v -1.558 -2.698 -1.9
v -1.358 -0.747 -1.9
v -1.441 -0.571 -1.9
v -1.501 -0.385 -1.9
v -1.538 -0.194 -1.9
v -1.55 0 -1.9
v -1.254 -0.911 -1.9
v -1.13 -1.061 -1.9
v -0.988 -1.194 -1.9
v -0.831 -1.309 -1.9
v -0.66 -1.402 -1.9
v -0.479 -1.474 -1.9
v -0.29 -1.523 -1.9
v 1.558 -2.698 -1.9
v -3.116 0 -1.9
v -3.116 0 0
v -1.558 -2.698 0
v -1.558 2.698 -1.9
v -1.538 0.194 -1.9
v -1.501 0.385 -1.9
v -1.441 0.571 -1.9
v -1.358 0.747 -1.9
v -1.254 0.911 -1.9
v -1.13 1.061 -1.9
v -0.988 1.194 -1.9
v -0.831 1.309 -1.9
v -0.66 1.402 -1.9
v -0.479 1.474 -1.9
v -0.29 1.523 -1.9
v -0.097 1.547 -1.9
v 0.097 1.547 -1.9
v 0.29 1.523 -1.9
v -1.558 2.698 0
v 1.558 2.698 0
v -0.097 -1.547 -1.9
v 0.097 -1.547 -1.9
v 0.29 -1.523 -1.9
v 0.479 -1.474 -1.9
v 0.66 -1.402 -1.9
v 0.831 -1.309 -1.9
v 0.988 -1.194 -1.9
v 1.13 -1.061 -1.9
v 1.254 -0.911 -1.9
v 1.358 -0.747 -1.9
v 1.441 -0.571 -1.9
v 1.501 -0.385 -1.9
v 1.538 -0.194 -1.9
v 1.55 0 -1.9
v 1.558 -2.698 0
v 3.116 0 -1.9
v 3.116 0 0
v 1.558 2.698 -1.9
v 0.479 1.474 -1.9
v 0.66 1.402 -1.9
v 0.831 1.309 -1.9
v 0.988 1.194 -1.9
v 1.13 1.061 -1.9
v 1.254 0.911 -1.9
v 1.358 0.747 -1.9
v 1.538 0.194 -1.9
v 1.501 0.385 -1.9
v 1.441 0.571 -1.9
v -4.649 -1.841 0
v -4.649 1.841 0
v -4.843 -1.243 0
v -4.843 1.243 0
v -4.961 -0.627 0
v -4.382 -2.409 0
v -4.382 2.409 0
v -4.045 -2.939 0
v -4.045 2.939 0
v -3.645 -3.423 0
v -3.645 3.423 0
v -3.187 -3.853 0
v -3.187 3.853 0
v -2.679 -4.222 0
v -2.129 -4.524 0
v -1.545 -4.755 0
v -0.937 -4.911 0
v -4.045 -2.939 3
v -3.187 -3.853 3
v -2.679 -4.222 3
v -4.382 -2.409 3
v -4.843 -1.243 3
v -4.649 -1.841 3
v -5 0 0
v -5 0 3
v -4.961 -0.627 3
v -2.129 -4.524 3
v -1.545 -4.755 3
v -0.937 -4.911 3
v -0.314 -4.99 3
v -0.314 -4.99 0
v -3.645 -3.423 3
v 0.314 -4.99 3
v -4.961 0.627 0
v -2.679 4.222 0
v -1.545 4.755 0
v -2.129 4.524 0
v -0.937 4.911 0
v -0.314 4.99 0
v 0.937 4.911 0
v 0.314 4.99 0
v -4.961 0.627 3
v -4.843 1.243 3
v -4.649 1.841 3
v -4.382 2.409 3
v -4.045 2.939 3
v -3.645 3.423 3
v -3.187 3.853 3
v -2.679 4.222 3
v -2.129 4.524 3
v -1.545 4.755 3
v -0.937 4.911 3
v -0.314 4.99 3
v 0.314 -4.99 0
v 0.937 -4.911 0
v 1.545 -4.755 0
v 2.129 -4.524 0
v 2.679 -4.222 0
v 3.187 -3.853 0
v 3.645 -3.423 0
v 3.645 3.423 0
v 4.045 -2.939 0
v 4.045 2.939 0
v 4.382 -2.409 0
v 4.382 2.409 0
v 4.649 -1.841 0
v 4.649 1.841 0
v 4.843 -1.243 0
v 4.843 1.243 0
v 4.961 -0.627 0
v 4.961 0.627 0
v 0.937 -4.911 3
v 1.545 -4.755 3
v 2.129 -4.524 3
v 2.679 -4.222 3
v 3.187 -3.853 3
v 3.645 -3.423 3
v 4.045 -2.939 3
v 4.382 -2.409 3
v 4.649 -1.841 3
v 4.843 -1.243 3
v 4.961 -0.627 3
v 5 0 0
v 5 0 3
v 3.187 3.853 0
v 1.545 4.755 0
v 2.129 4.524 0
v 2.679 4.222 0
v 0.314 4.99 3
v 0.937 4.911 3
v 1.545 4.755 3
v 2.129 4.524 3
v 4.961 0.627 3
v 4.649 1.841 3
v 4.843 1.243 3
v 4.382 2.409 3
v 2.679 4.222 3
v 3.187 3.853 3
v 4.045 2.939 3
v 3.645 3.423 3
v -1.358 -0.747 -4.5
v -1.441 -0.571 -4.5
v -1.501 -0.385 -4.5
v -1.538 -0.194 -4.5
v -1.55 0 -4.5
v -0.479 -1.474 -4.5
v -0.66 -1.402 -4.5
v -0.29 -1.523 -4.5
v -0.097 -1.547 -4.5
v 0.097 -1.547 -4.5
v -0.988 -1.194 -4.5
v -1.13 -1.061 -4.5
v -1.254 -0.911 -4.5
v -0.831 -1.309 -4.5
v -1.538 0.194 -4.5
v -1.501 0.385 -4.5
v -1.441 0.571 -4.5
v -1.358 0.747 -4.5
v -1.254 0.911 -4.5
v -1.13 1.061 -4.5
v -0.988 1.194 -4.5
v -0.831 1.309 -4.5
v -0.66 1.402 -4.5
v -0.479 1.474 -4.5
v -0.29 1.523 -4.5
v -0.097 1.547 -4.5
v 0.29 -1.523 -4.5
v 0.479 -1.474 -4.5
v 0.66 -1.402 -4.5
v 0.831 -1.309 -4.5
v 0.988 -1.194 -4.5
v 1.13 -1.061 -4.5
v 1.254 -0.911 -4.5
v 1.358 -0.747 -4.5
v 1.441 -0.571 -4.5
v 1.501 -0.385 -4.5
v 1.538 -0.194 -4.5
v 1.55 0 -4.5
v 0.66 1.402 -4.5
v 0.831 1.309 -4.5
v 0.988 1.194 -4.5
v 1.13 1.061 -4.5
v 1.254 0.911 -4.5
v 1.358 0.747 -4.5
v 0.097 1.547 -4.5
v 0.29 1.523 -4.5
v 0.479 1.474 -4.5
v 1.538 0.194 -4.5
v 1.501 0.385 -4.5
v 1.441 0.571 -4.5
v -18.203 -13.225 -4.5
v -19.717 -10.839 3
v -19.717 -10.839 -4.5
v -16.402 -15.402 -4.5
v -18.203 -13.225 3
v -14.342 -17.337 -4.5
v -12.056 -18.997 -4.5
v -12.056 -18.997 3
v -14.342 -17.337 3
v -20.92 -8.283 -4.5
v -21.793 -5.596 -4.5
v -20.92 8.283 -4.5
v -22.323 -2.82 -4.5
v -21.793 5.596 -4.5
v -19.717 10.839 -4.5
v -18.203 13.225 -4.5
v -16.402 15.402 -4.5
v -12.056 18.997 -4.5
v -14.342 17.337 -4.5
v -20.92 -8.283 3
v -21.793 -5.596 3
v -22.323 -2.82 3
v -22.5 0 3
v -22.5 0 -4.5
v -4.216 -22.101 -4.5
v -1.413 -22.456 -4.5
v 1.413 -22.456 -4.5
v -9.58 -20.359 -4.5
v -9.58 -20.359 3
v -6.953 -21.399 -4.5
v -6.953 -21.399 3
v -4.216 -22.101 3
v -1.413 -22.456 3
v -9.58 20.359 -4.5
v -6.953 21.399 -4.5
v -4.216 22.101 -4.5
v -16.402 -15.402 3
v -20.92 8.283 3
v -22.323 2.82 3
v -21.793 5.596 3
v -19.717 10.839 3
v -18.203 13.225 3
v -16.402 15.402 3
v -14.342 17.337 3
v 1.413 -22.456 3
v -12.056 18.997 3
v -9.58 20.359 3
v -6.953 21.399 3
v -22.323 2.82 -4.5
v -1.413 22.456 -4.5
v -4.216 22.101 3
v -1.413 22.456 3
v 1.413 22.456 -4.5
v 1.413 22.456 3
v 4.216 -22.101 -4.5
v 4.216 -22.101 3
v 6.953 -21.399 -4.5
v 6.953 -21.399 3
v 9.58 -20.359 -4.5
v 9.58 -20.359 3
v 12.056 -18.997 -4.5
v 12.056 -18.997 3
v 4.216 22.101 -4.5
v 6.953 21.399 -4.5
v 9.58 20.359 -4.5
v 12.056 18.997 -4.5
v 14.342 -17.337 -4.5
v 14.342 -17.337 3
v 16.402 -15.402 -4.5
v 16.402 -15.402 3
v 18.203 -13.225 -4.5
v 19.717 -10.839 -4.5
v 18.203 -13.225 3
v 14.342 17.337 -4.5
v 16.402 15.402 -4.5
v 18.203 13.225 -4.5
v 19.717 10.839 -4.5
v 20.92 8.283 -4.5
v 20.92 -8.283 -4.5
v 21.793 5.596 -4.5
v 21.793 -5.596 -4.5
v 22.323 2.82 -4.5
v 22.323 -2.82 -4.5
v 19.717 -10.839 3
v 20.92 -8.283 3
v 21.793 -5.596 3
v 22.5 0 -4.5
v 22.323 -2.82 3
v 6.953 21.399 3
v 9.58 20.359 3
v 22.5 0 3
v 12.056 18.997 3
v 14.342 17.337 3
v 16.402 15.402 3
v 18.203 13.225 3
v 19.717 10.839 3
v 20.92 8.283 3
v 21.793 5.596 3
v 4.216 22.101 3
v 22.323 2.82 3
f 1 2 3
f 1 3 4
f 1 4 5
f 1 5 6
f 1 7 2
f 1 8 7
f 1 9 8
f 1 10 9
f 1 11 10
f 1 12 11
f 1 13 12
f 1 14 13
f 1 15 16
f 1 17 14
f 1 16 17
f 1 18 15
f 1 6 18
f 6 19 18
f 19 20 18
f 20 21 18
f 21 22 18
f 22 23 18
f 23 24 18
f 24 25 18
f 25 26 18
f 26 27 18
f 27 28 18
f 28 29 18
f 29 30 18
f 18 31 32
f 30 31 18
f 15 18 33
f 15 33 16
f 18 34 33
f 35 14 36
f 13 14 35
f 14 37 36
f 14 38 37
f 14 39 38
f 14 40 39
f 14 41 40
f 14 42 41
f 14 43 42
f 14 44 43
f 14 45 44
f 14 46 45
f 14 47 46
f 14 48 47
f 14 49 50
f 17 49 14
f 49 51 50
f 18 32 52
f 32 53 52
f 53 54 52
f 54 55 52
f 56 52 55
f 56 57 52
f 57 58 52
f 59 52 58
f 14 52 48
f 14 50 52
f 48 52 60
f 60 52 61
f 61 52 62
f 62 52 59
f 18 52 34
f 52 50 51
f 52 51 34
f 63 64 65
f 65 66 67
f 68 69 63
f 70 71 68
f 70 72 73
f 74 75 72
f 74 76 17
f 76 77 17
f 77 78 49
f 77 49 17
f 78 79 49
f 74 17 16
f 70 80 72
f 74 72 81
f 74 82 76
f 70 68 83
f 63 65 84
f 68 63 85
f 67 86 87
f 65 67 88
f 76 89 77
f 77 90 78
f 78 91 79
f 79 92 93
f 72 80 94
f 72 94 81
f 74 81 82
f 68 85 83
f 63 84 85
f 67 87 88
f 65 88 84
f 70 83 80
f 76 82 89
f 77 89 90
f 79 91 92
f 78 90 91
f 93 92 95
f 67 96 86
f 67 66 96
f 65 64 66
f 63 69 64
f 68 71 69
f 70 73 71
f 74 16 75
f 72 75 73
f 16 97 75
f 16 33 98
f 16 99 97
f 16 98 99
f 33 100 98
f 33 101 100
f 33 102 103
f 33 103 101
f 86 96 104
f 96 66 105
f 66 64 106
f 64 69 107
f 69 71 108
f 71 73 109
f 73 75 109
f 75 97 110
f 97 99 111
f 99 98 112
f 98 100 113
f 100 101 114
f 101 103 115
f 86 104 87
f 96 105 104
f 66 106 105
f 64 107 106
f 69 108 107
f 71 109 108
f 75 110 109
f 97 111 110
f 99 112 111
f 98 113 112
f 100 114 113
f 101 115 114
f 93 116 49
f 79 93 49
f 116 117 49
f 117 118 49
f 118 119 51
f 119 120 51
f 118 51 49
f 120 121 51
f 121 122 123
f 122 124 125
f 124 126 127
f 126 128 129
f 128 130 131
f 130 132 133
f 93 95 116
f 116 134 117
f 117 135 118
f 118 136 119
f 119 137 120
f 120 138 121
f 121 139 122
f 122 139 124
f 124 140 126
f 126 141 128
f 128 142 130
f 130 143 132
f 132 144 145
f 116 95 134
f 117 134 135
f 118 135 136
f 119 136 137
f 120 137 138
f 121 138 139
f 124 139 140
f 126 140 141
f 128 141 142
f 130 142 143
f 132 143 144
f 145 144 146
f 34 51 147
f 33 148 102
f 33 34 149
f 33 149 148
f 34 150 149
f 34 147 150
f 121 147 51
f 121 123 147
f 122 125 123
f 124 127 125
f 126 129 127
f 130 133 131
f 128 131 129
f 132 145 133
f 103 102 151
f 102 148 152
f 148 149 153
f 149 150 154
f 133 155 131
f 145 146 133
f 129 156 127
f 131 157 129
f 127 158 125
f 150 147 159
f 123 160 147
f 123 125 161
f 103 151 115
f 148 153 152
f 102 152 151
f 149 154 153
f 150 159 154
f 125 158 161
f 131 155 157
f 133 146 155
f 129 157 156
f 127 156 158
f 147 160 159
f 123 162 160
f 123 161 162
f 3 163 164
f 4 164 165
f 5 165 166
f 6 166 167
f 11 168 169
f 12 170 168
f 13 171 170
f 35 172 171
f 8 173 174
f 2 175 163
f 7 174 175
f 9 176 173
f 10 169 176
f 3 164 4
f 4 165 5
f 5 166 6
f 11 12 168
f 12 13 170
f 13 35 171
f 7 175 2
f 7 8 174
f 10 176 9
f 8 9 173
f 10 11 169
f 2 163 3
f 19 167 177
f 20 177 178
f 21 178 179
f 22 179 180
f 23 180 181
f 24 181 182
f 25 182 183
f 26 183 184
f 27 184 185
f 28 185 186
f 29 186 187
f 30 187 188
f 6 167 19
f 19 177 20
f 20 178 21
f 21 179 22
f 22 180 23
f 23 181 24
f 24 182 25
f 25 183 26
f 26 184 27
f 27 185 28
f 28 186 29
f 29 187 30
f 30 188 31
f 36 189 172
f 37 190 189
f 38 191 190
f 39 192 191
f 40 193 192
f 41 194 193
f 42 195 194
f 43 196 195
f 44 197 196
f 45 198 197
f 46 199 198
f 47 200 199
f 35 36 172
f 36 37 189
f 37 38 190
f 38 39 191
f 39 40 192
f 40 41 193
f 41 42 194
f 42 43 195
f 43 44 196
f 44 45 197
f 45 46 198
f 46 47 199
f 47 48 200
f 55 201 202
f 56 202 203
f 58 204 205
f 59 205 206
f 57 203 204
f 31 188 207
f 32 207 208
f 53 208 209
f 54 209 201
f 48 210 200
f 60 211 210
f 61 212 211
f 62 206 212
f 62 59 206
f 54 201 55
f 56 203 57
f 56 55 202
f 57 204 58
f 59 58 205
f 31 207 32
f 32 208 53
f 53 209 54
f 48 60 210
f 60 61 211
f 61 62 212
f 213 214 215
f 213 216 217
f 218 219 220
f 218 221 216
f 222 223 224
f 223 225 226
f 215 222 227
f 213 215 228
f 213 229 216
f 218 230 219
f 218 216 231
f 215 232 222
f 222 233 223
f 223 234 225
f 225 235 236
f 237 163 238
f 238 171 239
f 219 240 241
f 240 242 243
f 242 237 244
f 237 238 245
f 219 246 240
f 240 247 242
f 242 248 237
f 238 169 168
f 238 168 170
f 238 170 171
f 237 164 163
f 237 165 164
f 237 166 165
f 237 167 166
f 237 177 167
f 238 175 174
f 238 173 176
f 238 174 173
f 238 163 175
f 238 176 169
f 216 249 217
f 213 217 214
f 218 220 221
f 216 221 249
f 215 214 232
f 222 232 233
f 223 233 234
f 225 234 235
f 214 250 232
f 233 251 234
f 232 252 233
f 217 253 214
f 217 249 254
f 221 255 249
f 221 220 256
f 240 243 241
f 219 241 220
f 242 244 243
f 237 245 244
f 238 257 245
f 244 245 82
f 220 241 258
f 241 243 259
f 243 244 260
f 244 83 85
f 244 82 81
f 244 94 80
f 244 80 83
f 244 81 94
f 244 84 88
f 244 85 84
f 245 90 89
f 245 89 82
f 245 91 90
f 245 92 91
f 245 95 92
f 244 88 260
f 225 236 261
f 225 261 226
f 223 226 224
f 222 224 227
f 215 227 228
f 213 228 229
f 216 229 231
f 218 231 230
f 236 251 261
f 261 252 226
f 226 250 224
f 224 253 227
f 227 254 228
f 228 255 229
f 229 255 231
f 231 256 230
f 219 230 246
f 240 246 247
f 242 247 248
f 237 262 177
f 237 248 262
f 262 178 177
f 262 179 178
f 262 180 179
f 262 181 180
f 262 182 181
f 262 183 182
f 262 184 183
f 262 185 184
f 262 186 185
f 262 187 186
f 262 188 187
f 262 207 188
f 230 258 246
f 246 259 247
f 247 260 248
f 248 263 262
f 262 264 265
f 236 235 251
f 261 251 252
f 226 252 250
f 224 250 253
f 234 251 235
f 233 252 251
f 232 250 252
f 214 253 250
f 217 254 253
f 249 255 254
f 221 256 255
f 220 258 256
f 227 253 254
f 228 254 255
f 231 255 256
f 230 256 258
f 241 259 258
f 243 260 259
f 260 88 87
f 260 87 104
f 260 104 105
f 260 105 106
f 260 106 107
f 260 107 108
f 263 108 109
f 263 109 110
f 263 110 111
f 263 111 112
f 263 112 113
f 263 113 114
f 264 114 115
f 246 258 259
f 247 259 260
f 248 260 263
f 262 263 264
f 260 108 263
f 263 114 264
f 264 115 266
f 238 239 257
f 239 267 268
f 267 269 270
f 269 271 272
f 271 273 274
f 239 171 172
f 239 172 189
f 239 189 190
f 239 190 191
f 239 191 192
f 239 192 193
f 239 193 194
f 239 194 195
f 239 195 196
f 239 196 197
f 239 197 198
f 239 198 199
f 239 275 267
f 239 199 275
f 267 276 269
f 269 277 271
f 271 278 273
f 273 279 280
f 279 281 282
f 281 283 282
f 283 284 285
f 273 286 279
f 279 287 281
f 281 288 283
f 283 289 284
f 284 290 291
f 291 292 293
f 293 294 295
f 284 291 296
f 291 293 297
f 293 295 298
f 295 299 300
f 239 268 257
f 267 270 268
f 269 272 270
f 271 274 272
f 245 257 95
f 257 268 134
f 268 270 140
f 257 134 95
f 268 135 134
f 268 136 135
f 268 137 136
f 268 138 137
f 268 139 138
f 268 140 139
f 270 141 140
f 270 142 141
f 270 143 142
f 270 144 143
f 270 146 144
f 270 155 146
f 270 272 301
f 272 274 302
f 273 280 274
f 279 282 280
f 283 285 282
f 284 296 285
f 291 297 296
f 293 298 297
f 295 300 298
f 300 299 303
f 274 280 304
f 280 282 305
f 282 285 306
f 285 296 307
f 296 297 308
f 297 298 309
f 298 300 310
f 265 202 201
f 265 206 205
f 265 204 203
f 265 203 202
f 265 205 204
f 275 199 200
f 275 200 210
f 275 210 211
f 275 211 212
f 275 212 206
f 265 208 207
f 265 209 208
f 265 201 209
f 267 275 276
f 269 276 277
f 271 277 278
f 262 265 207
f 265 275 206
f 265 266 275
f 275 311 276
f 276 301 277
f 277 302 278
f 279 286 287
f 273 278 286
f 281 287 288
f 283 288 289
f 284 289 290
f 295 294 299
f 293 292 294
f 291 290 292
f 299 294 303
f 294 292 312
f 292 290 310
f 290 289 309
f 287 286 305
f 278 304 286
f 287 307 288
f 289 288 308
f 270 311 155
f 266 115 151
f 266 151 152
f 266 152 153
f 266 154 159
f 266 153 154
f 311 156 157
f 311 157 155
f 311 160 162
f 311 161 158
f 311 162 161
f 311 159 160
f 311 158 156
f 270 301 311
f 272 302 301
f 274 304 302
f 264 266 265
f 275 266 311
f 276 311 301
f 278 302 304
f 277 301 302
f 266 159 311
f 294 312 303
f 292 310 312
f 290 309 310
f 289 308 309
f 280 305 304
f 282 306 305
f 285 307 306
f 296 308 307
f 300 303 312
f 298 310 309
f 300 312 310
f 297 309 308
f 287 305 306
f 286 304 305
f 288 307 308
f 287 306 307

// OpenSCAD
$fn = 50;


difference() {
	union() {
		translate(v = [0, 0, -4.5000000000]) {
			cylinder(h = 7.5000000000, r = 22.5000000000);
		}
	}
	union() {
		translate(v = [0, 0, 0]) {
			rotate(a = [0, 0, 0]) {
				difference() {
					union() {
						translate(v = [0, 0, -1.9000000000]) {
							linear_extrude(height = 1.9000000000) {
								polygon(points = [[3.1158000000, 0.0000000000], [1.5579000000, 2.6983619531], [-1.5579000000, 2.6983619531], [-3.1158000000, 0.0000000000], [-1.5579000000, -2.6983619531], [1.5579000000, -2.6983619531]]);
							}
						}
					}
					union();
				}
			}
		}
		#cylinder(h = 3, r = 5.0000000000);
		#translate(v = [0, 0, -100.0000000000]) {
			cylinder(h = 200, r = 1.5500000000);
		}
	}
}
